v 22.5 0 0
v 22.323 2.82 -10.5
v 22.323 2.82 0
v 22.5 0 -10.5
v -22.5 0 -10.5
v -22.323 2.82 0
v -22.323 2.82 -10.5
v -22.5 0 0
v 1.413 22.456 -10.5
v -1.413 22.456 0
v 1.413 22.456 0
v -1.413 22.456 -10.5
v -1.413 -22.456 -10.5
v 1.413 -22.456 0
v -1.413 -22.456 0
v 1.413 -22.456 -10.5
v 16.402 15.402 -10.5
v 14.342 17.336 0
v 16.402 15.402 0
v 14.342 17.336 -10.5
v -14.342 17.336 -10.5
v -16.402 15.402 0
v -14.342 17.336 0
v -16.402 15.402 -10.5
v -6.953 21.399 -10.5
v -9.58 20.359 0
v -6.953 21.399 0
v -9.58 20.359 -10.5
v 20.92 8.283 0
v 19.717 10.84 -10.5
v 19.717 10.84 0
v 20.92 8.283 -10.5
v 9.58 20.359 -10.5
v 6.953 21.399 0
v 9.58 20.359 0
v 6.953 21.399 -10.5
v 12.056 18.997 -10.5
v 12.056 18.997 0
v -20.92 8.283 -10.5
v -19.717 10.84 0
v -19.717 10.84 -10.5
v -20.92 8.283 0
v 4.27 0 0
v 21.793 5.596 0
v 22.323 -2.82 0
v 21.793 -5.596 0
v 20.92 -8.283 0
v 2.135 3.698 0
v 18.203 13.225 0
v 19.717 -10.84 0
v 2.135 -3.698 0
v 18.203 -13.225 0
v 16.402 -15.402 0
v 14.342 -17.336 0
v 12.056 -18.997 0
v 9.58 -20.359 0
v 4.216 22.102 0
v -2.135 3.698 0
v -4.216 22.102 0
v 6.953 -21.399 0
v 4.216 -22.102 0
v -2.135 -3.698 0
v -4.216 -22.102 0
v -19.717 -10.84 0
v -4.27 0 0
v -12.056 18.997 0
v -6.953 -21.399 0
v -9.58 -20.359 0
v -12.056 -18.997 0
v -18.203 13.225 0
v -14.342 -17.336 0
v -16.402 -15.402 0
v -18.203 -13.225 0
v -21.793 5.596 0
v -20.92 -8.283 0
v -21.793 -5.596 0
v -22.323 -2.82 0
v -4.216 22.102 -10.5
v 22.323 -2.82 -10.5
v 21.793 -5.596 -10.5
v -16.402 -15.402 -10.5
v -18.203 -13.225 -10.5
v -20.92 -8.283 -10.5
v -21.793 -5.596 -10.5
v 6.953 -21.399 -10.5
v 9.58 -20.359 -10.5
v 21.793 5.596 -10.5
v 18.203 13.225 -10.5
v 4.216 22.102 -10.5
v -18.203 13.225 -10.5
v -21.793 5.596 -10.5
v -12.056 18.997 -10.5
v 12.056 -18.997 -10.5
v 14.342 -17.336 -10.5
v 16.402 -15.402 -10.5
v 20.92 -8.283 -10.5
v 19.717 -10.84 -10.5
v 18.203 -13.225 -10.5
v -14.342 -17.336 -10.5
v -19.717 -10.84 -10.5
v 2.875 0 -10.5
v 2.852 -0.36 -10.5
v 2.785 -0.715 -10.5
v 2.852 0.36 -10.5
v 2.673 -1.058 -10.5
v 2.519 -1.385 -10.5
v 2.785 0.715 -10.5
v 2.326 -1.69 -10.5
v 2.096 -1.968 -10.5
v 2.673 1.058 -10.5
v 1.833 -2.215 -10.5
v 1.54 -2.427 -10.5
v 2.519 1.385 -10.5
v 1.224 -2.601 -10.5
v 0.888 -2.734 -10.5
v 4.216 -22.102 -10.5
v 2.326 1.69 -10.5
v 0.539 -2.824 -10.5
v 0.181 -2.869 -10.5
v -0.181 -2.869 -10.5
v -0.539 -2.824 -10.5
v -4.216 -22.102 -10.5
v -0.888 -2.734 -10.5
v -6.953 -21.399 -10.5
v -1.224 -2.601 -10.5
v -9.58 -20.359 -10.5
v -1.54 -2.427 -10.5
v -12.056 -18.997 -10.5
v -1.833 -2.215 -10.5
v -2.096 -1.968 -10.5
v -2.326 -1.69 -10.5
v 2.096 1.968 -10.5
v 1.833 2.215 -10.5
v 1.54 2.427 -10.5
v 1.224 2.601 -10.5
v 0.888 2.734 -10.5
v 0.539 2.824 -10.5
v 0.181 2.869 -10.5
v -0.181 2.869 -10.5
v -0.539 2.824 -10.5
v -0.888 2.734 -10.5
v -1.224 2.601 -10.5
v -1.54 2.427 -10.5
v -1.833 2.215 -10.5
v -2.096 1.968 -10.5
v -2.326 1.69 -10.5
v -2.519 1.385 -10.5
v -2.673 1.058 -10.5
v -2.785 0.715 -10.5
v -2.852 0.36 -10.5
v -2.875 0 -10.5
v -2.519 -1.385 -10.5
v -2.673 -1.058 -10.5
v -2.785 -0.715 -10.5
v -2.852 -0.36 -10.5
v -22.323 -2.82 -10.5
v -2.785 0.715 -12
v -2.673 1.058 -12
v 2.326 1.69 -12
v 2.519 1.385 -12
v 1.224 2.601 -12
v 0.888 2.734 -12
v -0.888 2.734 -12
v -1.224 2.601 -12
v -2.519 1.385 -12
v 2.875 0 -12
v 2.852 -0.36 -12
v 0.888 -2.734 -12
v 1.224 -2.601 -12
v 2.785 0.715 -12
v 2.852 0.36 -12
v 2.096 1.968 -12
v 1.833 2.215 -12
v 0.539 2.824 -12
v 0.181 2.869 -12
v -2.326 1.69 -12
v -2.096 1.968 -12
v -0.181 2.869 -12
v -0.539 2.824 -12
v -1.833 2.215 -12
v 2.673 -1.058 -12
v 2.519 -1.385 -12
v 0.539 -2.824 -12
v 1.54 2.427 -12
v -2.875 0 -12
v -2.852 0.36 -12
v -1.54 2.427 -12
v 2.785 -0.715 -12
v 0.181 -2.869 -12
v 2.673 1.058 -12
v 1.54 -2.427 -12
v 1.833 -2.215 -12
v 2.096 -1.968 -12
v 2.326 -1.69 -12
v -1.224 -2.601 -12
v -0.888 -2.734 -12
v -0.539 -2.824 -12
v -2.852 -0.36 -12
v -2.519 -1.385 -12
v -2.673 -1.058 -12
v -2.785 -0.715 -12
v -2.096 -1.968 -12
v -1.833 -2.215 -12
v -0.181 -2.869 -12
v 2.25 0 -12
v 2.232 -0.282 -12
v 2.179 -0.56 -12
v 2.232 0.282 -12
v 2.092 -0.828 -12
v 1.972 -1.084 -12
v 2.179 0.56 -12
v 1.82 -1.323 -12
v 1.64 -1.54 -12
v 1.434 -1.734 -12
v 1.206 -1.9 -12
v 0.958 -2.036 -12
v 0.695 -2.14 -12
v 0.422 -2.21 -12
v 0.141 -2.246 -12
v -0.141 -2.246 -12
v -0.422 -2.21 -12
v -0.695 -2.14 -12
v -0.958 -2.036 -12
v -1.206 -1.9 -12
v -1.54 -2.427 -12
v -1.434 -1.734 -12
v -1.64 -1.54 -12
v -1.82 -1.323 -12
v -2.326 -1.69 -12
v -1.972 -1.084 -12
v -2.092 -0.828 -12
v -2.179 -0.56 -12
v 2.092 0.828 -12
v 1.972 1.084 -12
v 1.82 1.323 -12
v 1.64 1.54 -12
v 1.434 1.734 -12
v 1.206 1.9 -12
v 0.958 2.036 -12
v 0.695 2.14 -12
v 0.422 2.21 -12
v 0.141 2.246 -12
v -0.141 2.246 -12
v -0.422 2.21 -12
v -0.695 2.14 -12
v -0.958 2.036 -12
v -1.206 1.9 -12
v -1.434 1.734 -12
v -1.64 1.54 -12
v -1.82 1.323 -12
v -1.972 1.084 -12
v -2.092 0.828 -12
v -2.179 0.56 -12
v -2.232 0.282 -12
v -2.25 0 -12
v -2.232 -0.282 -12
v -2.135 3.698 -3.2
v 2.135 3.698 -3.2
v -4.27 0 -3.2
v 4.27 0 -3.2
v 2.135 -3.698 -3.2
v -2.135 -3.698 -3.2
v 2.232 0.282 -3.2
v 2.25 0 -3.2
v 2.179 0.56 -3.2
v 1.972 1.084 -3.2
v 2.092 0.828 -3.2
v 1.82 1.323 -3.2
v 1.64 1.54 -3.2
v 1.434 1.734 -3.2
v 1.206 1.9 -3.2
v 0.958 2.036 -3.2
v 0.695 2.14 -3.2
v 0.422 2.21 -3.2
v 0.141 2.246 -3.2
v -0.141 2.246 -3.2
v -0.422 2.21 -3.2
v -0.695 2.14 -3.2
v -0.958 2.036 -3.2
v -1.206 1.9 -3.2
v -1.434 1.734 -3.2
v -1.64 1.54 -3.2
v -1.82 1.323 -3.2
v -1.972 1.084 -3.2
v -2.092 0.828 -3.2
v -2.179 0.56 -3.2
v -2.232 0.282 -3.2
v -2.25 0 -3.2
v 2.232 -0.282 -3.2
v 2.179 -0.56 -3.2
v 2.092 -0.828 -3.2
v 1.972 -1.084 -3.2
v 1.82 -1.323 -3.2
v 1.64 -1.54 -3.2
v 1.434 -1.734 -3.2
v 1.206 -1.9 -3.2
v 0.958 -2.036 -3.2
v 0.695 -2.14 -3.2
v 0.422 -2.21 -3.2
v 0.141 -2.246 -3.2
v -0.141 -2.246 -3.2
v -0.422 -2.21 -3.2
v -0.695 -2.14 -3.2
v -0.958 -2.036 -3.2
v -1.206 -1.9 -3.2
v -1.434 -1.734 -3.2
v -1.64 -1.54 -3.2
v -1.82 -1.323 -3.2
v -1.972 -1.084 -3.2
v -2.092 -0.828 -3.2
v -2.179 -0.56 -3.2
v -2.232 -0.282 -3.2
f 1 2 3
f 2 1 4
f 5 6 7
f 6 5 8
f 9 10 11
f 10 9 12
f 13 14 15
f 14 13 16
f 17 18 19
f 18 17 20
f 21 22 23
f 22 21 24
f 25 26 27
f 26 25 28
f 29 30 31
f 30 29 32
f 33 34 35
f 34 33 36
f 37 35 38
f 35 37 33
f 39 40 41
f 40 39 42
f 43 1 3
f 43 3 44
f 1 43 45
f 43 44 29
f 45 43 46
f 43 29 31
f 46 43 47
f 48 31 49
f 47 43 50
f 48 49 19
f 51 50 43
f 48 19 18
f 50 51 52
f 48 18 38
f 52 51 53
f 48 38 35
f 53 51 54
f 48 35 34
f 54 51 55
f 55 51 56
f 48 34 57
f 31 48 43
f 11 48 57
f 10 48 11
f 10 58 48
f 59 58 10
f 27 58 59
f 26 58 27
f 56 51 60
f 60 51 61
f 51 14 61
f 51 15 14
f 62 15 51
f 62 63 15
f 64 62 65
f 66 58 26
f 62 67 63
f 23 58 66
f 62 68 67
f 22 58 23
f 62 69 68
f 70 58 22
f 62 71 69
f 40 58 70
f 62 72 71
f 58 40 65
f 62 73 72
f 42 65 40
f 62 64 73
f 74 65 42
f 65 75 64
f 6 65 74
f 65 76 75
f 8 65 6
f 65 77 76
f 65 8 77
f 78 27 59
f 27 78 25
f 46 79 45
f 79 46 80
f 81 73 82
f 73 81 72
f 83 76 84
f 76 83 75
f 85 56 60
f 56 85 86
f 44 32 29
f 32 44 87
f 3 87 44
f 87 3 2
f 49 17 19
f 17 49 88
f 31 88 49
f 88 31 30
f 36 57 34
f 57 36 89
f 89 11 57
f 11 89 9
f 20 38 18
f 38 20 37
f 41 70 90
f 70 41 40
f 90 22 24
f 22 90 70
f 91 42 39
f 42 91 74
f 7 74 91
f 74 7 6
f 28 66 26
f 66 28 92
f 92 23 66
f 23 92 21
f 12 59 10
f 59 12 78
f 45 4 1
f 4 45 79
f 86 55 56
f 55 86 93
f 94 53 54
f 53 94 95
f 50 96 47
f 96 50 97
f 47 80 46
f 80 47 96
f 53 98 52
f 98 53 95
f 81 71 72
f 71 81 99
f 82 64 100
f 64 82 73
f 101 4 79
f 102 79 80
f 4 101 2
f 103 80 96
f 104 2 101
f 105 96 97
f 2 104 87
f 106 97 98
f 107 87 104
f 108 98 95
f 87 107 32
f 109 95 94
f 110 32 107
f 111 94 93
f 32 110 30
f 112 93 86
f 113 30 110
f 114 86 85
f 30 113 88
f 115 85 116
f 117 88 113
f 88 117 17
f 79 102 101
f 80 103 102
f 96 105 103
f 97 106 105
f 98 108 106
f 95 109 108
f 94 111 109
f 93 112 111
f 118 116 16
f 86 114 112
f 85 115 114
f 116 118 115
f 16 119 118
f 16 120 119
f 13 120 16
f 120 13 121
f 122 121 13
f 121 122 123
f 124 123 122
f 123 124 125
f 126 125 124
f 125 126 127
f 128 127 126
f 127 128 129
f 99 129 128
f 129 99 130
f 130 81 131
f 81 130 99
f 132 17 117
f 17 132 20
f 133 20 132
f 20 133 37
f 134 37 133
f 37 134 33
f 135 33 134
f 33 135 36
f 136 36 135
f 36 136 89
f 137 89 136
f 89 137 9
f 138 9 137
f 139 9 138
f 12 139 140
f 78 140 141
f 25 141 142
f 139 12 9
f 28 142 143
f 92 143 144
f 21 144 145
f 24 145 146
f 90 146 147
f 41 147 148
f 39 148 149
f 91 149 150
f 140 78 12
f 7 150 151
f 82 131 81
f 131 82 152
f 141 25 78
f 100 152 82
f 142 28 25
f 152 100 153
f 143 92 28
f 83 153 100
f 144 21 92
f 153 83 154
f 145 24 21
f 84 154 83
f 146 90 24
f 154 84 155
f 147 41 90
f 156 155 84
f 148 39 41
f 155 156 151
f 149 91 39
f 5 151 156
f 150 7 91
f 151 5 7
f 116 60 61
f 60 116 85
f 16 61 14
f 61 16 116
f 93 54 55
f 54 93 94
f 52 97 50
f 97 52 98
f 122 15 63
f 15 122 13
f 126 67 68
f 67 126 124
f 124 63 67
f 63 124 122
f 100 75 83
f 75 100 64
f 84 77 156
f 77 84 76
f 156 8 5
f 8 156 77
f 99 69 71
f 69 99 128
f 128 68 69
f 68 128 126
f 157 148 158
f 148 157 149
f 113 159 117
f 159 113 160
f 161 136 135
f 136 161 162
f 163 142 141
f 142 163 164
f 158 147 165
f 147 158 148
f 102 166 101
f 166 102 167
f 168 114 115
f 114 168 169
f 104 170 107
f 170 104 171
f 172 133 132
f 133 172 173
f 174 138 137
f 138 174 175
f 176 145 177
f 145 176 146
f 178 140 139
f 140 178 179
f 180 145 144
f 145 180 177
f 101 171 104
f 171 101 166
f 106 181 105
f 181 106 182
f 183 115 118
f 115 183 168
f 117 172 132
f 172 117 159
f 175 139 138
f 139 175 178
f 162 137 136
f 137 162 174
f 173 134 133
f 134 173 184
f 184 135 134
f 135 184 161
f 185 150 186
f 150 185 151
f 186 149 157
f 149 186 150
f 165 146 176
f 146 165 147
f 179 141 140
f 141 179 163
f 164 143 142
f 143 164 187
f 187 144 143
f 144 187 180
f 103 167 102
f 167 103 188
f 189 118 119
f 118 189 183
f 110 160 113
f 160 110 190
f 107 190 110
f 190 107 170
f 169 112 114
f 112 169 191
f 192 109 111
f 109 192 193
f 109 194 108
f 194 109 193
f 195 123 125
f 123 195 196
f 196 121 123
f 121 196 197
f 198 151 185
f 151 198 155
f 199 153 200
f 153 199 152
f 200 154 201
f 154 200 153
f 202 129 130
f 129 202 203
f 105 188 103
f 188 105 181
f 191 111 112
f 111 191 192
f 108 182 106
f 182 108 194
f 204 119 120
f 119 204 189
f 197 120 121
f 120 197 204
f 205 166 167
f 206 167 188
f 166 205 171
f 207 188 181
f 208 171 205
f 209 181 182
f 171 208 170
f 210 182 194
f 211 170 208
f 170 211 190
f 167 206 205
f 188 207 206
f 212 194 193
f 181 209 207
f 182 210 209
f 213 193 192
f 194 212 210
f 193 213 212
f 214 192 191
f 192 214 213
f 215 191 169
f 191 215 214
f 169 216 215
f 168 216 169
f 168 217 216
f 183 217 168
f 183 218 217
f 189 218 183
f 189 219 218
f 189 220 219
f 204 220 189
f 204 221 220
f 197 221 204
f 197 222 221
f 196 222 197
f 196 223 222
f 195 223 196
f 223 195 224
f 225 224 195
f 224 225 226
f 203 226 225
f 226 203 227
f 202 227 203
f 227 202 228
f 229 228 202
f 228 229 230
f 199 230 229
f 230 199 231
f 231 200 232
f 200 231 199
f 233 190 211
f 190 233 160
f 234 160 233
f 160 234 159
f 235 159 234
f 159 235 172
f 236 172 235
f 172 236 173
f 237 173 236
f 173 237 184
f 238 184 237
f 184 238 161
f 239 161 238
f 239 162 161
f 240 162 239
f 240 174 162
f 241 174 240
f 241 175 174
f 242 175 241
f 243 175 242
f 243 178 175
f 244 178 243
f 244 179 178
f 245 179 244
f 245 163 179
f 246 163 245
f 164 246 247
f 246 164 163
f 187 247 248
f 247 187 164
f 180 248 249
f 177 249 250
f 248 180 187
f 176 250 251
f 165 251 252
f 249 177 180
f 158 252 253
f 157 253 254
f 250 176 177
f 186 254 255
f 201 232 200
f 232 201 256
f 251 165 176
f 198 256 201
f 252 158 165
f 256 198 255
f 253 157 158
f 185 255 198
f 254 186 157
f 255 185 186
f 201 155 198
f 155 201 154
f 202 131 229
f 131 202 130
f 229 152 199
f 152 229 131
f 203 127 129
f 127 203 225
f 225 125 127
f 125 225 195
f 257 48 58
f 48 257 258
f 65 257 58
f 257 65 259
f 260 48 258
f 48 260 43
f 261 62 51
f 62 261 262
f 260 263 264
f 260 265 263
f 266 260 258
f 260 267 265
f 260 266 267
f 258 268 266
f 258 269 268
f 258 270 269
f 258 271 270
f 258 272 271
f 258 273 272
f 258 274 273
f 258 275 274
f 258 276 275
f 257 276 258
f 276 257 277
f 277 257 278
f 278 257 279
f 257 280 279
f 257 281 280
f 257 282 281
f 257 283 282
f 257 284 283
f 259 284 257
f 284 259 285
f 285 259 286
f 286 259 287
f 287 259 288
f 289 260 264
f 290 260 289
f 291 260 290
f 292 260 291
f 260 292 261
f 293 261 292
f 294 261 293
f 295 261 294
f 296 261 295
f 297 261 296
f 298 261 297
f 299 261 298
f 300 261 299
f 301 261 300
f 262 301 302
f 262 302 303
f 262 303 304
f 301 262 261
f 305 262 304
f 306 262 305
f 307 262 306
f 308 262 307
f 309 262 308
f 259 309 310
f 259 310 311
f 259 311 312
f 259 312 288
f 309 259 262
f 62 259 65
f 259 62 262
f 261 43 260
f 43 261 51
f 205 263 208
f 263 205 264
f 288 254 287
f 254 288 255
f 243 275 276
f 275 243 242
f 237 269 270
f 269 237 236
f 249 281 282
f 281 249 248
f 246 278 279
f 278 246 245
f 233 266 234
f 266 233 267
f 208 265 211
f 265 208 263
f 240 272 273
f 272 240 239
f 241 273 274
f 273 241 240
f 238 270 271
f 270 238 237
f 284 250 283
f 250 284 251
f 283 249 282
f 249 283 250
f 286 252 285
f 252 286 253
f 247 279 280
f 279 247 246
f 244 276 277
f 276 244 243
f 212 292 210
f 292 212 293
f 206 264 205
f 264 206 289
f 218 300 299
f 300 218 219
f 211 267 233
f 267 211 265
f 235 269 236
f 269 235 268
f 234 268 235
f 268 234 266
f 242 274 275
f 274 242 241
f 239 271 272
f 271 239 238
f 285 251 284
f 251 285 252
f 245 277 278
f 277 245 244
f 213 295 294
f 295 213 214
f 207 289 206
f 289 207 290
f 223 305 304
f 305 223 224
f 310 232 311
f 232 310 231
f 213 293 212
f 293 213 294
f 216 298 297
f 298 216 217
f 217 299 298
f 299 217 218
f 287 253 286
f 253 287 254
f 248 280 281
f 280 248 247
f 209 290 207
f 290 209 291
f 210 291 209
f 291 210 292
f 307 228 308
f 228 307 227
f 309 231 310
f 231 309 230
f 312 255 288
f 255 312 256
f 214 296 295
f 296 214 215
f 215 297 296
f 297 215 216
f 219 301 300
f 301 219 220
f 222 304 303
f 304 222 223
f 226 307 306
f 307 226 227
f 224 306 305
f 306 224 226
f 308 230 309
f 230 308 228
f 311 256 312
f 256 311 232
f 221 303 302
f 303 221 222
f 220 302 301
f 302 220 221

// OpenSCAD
$fn = 50;


difference() {
	union() {
		translate(v = [0, 0, -10.5000000000]) {
			cylinder(h = 10.5000000000, r = 22.5000000000);
		}
		#translate(v = [0, 0, -12.0000000000]) {
			cylinder(h = 12, r = 2.8750000000);
		}
	}
	union() {
		translate(v = [0, 0, 0]) {
			rotate(a = [0, 0, 0]) {
				difference() {
					union() {
						translate(v = [0, 0, -3.2000000000]) {
							linear_extrude(height = 3.2000000000) {
								polygon(points = [[4.2698000000, 0.0000000000], [2.1349000000, 3.6977552691], [-2.1349000000, 3.6977552691], [-4.2698000000, 0.0000000000], [-2.1349000000, -3.6977552691], [2.1349000000, -3.6977552691]]);
							}
						}
					}
					union();
				}
			}
		}
		#translate(v = [0, 0, -100.0000000000]) {
			cylinder(h = 200, r = 2.2500000000);
		}
	}
}
